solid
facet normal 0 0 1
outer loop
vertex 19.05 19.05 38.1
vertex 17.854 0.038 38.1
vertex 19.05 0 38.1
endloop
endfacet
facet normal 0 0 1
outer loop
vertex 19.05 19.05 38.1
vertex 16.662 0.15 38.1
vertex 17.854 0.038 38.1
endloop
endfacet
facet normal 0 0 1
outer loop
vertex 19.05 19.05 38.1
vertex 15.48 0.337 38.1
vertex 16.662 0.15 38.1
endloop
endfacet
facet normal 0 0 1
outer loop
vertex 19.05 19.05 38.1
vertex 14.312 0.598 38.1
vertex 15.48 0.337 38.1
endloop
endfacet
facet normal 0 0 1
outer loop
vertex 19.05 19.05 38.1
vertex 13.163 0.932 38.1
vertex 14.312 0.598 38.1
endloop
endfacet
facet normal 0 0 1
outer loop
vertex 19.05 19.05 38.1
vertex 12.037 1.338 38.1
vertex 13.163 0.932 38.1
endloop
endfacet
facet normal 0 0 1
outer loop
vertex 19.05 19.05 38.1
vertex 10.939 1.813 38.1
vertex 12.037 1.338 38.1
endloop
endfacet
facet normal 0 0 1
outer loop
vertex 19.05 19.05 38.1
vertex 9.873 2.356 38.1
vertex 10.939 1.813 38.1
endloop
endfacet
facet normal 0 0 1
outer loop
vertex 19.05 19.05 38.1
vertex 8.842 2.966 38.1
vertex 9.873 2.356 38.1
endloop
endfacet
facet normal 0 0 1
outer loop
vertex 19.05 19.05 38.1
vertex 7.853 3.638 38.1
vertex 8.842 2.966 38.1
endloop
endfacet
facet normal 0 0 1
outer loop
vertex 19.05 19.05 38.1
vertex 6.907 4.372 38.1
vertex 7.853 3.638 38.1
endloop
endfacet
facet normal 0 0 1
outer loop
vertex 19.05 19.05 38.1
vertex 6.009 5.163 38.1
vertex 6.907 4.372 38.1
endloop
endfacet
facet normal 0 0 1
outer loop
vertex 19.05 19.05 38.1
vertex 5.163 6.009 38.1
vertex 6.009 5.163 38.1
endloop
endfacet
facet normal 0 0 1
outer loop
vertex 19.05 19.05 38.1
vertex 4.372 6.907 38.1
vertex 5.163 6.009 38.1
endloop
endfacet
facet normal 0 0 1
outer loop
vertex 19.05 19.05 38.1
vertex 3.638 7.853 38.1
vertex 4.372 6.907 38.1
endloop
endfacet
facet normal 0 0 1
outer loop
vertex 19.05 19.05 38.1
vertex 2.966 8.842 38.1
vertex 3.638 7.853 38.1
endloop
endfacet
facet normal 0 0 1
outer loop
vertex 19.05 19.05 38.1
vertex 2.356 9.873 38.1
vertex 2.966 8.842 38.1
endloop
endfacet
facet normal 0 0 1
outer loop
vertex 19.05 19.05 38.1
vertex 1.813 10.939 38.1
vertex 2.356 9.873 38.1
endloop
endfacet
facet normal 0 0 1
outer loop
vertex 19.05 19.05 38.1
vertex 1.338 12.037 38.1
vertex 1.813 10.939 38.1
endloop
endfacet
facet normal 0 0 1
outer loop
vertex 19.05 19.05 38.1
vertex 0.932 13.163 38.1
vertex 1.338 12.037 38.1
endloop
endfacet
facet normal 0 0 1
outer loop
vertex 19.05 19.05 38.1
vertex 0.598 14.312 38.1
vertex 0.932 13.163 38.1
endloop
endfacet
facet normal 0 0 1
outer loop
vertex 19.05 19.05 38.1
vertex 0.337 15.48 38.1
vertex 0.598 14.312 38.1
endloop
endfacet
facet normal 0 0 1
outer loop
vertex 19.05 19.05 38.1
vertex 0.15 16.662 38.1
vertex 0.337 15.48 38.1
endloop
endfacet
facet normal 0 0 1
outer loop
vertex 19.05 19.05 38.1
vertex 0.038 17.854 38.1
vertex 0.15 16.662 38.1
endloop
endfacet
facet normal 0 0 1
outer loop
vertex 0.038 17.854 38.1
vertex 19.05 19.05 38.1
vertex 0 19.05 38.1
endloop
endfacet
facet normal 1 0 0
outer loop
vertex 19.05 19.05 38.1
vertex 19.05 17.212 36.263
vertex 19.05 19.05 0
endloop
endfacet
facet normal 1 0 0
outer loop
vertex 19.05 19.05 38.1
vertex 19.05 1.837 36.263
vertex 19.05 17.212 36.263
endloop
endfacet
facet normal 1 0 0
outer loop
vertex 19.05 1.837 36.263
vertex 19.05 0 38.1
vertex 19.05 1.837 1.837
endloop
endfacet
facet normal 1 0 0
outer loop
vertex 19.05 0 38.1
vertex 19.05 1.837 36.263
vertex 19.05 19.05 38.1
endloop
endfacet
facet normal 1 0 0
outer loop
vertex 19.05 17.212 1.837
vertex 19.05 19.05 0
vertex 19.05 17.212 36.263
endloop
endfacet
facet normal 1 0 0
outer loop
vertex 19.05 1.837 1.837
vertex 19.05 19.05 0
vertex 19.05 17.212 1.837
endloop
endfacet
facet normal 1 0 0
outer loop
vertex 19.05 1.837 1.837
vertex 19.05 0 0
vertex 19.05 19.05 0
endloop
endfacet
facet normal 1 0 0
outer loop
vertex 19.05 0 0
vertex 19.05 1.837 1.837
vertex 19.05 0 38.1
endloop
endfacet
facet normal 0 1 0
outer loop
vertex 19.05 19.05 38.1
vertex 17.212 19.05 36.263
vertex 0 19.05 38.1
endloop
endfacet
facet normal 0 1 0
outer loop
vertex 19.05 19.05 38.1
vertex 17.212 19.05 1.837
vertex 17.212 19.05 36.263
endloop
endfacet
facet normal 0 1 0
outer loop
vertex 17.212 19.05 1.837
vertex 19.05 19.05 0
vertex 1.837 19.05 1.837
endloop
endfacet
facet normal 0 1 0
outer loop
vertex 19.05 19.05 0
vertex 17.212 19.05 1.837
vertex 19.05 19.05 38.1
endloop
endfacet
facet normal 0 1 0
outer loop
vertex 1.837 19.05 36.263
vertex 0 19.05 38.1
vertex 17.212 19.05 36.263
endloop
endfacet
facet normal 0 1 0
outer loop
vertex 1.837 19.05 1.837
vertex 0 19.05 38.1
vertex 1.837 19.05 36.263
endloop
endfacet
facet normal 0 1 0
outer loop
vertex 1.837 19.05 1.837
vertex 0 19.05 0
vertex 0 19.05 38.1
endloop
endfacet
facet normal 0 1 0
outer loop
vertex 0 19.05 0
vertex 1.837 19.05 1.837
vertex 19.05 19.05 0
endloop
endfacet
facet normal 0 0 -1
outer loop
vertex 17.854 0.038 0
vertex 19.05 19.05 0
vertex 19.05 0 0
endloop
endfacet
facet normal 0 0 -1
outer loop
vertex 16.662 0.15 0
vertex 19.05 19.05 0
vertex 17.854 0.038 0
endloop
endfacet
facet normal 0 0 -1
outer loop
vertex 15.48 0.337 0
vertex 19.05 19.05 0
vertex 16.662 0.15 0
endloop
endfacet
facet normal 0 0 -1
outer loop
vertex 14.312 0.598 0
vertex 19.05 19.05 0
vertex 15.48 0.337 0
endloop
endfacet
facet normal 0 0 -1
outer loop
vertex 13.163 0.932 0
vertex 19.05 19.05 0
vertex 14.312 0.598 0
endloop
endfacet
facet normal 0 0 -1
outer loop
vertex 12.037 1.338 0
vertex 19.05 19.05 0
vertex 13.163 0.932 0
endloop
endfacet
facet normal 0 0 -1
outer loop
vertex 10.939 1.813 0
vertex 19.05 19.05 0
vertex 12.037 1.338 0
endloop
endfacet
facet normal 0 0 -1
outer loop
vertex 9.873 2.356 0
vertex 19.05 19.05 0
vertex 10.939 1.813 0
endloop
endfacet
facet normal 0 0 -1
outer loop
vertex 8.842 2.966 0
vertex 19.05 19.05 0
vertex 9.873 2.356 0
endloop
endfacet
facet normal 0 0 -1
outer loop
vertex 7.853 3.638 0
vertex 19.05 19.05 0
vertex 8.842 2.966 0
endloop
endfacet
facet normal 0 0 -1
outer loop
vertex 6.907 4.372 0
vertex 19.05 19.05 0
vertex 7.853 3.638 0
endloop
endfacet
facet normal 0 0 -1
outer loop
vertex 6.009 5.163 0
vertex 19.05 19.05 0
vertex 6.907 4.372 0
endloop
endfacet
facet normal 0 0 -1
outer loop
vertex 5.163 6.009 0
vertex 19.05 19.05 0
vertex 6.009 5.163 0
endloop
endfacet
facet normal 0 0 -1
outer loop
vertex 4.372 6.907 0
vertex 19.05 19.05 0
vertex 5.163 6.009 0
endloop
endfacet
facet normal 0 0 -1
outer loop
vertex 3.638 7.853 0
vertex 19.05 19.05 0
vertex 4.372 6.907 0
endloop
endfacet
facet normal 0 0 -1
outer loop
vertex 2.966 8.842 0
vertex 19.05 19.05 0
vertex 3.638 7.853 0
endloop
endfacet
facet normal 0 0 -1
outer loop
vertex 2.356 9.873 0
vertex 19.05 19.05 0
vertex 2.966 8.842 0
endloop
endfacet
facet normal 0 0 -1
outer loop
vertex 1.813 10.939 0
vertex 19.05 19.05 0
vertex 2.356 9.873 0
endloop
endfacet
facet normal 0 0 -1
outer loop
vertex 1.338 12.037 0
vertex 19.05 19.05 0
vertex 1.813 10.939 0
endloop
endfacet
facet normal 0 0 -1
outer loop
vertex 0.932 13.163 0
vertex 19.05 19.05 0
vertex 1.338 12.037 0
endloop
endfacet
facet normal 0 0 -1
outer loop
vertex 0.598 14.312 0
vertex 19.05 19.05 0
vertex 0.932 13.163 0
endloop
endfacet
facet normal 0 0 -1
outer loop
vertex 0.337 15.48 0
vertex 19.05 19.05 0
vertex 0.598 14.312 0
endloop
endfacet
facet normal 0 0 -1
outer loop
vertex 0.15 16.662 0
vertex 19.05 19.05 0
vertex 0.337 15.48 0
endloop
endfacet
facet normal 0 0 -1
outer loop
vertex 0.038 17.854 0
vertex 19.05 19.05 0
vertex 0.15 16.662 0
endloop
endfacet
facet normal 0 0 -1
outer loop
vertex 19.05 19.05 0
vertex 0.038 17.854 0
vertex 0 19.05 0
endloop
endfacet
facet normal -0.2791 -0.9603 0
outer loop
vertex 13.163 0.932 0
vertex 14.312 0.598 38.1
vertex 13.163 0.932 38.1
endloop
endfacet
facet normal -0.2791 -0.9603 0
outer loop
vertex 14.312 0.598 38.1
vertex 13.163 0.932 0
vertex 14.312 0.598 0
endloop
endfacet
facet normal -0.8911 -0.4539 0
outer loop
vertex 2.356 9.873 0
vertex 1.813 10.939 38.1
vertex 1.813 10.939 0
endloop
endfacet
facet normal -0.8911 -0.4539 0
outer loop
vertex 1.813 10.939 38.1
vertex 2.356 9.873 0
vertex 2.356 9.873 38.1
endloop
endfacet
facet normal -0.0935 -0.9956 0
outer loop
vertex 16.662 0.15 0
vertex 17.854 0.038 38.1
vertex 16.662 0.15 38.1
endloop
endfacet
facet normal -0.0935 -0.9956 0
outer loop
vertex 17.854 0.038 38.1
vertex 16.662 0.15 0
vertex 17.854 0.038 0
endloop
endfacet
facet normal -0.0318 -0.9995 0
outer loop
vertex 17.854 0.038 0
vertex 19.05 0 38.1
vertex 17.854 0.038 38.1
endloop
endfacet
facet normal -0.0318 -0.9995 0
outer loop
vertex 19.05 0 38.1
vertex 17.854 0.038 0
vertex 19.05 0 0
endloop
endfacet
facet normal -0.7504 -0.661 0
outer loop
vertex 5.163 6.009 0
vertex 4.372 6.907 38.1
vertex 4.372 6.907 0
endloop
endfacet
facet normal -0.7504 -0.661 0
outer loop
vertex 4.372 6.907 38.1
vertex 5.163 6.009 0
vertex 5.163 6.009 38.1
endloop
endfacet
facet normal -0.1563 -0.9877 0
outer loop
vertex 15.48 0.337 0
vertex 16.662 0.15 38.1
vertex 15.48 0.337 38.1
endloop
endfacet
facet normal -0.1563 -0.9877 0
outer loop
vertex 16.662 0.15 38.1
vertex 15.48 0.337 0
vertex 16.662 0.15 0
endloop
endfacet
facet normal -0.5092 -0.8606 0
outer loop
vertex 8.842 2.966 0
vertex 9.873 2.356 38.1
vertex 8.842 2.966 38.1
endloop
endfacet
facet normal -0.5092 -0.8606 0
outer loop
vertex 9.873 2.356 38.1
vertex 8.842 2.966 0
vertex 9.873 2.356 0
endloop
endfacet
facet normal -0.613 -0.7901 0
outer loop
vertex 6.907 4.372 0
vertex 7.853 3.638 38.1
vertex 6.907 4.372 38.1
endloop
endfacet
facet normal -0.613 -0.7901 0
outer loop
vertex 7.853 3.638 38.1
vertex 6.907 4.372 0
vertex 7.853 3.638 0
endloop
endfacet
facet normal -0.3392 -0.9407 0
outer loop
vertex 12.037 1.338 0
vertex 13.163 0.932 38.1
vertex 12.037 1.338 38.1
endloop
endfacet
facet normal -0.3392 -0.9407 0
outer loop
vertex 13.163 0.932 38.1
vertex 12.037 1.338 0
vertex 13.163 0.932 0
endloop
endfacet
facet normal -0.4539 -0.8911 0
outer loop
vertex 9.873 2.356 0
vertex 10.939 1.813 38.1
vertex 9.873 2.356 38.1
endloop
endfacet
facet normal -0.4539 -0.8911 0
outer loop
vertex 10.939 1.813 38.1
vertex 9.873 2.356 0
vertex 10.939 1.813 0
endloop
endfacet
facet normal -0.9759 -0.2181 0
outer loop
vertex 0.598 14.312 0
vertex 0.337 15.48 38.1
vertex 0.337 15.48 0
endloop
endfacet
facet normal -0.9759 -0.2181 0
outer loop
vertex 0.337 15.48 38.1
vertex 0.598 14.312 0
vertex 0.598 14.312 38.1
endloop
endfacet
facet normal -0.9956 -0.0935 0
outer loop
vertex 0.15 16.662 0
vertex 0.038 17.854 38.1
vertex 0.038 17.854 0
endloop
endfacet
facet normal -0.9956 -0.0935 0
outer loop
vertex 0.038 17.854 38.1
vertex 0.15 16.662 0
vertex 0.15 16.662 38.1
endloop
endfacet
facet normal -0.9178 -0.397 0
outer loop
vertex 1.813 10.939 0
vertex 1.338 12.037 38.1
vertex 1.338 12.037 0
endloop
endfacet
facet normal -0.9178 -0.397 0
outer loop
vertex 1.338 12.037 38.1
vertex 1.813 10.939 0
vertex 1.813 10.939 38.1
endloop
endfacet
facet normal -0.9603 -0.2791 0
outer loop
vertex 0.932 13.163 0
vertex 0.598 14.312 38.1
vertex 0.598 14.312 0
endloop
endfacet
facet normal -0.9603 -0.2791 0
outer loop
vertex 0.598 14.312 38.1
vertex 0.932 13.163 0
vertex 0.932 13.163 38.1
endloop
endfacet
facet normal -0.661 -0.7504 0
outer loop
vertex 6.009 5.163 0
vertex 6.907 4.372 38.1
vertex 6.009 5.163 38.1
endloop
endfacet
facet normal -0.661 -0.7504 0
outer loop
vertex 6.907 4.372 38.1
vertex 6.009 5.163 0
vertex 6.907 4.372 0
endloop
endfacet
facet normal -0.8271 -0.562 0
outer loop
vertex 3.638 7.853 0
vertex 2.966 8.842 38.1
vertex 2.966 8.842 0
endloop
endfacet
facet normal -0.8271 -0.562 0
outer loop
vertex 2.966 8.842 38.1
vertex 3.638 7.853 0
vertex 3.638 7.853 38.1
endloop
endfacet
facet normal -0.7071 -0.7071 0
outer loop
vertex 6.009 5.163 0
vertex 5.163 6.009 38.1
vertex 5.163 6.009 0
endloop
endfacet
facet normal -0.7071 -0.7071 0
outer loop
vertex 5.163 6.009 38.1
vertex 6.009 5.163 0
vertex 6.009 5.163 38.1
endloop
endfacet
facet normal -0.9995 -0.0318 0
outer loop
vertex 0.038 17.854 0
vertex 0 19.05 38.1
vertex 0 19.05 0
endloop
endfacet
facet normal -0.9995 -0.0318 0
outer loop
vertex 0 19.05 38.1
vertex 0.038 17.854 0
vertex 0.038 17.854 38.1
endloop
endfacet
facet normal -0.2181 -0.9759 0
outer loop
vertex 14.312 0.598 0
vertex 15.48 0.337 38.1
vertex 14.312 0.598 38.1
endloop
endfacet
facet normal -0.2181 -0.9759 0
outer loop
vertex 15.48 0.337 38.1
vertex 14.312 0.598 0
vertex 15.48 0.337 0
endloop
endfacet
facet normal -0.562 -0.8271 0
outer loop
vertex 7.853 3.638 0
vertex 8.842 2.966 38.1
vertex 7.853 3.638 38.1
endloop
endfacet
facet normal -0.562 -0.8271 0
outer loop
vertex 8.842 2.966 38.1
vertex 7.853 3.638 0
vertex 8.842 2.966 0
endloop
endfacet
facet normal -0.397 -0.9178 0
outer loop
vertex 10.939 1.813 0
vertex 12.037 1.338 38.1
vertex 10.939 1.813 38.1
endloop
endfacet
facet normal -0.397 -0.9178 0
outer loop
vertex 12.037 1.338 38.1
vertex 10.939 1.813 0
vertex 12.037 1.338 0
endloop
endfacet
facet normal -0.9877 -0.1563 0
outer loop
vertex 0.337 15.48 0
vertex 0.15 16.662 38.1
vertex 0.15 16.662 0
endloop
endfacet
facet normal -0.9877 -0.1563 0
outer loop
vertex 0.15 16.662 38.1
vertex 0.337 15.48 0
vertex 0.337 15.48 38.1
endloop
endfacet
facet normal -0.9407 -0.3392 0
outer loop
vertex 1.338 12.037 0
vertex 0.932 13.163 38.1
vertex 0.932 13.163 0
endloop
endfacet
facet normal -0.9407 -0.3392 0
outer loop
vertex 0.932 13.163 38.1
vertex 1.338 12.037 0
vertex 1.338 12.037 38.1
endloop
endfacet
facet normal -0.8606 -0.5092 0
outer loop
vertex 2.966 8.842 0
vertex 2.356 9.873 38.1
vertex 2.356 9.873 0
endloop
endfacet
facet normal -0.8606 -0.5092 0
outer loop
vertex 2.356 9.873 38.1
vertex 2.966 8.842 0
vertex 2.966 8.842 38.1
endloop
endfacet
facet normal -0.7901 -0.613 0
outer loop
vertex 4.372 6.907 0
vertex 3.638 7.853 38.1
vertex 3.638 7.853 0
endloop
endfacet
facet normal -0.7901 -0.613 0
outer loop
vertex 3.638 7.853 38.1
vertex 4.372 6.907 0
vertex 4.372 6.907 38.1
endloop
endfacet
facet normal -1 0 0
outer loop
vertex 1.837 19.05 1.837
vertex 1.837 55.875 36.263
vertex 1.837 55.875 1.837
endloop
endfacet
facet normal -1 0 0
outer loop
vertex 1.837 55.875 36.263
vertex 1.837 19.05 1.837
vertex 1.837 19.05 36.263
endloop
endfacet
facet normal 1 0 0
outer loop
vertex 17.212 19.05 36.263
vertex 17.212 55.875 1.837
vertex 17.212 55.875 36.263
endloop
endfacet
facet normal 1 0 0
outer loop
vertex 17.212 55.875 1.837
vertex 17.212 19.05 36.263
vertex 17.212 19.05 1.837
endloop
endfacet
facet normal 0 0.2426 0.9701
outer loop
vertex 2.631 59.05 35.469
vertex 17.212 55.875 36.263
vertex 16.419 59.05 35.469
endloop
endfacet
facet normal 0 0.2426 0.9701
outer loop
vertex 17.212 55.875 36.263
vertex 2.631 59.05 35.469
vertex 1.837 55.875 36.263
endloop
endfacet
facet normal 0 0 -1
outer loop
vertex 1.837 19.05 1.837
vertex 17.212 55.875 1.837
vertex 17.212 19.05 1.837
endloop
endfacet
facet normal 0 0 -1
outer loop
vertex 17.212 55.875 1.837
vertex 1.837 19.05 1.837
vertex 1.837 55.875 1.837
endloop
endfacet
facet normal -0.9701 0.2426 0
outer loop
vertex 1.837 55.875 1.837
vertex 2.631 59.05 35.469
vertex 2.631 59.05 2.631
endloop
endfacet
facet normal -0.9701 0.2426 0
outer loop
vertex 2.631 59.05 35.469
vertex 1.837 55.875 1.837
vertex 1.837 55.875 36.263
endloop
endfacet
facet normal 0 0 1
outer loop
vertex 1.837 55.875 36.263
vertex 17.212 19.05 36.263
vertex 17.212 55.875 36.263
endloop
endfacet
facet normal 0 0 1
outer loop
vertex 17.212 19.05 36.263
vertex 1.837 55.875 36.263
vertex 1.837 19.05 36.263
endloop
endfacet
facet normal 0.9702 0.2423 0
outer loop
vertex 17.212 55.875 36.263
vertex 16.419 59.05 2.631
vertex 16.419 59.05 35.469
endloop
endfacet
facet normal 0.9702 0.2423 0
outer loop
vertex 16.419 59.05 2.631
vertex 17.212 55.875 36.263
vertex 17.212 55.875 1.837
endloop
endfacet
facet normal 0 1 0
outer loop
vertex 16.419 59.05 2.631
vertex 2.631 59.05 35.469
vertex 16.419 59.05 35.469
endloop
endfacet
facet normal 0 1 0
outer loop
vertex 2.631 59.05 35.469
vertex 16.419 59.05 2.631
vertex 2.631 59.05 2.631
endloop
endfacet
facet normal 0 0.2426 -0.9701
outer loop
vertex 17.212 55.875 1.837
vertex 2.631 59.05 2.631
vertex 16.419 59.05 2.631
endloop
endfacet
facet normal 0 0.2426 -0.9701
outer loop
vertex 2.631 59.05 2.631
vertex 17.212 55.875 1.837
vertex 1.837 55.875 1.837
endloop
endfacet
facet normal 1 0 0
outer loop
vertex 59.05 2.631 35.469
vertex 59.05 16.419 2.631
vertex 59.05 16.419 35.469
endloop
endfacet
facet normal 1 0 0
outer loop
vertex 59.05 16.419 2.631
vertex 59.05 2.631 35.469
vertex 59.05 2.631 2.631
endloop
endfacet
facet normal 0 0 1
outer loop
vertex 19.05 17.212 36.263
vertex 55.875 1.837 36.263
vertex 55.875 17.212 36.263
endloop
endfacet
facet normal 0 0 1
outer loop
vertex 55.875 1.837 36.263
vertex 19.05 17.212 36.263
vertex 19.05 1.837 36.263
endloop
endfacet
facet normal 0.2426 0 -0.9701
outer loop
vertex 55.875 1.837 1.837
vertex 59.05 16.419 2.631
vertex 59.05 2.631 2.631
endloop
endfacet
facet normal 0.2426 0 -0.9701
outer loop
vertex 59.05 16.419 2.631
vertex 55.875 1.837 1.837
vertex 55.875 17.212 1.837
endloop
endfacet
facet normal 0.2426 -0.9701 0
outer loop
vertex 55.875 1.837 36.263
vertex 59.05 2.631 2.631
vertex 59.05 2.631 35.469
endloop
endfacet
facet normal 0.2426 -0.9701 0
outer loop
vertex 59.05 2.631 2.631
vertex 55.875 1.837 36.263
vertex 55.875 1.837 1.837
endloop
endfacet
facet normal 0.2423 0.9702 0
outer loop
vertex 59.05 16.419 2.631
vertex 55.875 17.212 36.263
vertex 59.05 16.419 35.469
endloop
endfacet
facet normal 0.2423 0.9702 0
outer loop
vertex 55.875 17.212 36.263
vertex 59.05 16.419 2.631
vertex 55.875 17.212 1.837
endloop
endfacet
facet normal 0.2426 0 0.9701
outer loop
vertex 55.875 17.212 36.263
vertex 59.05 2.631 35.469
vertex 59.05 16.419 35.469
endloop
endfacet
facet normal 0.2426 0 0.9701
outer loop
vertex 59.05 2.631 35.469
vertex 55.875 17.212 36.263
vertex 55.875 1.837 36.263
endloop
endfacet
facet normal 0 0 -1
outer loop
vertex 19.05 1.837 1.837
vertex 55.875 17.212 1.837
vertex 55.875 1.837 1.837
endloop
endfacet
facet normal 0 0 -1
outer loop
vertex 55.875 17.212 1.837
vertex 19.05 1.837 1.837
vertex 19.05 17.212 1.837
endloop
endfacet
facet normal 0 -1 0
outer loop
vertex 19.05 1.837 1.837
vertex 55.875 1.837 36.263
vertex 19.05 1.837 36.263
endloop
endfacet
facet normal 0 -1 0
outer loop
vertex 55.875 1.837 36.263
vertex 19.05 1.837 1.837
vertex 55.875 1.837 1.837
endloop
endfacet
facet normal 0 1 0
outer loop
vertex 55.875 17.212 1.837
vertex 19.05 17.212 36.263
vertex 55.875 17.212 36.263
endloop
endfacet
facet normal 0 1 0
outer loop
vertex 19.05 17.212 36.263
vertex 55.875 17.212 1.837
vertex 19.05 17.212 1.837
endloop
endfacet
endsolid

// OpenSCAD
$fn=100;

plug_looseness = 0.25;

wall_thick = 1.5875 + plug_looseness;
extrusion_height = 38.1;
extrusion_width = 19.05;
leg_length = 40;
taper_rise = 0.79375;
taper_run = 3.175;

leg_height = extrusion_height - (2 * wall_thick);
leg_width = extrusion_width - (2 * wall_thick);

taper_height = leg_height - (2 * taper_rise);
taper_width = leg_width - (2 * taper_rise);

near_zero = 0.0001;



intersection()
{
    cube([extrusion_width, extrusion_width, extrusion_height]);

    translate([extrusion_width, extrusion_width, 0])
    {
        cylinder(r=extrusion_width, h = extrusion_height);
    }
}

hull()
{
translate([wall_thick, extrusion_width - near_zero, wall_thick])
{
    cube([leg_width, leg_length - taper_run, leg_height]);
}

translate([wall_thick + taper_rise, extrusion_width + leg_length, wall_thick + taper_rise])
{
    cube([taper_width, near_zero, taper_height]);
}
}



hull()
{
translate([extrusion_width - near_zero, wall_thick, wall_thick])
{
    cube([leg_length - taper_run, leg_width, leg_height]);
}
translate([extrusion_width + leg_length, wall_thick + taper_rise, wall_thick + taper_rise])
{
    cube([near_zero, taper_width, taper_height]);
}

}
